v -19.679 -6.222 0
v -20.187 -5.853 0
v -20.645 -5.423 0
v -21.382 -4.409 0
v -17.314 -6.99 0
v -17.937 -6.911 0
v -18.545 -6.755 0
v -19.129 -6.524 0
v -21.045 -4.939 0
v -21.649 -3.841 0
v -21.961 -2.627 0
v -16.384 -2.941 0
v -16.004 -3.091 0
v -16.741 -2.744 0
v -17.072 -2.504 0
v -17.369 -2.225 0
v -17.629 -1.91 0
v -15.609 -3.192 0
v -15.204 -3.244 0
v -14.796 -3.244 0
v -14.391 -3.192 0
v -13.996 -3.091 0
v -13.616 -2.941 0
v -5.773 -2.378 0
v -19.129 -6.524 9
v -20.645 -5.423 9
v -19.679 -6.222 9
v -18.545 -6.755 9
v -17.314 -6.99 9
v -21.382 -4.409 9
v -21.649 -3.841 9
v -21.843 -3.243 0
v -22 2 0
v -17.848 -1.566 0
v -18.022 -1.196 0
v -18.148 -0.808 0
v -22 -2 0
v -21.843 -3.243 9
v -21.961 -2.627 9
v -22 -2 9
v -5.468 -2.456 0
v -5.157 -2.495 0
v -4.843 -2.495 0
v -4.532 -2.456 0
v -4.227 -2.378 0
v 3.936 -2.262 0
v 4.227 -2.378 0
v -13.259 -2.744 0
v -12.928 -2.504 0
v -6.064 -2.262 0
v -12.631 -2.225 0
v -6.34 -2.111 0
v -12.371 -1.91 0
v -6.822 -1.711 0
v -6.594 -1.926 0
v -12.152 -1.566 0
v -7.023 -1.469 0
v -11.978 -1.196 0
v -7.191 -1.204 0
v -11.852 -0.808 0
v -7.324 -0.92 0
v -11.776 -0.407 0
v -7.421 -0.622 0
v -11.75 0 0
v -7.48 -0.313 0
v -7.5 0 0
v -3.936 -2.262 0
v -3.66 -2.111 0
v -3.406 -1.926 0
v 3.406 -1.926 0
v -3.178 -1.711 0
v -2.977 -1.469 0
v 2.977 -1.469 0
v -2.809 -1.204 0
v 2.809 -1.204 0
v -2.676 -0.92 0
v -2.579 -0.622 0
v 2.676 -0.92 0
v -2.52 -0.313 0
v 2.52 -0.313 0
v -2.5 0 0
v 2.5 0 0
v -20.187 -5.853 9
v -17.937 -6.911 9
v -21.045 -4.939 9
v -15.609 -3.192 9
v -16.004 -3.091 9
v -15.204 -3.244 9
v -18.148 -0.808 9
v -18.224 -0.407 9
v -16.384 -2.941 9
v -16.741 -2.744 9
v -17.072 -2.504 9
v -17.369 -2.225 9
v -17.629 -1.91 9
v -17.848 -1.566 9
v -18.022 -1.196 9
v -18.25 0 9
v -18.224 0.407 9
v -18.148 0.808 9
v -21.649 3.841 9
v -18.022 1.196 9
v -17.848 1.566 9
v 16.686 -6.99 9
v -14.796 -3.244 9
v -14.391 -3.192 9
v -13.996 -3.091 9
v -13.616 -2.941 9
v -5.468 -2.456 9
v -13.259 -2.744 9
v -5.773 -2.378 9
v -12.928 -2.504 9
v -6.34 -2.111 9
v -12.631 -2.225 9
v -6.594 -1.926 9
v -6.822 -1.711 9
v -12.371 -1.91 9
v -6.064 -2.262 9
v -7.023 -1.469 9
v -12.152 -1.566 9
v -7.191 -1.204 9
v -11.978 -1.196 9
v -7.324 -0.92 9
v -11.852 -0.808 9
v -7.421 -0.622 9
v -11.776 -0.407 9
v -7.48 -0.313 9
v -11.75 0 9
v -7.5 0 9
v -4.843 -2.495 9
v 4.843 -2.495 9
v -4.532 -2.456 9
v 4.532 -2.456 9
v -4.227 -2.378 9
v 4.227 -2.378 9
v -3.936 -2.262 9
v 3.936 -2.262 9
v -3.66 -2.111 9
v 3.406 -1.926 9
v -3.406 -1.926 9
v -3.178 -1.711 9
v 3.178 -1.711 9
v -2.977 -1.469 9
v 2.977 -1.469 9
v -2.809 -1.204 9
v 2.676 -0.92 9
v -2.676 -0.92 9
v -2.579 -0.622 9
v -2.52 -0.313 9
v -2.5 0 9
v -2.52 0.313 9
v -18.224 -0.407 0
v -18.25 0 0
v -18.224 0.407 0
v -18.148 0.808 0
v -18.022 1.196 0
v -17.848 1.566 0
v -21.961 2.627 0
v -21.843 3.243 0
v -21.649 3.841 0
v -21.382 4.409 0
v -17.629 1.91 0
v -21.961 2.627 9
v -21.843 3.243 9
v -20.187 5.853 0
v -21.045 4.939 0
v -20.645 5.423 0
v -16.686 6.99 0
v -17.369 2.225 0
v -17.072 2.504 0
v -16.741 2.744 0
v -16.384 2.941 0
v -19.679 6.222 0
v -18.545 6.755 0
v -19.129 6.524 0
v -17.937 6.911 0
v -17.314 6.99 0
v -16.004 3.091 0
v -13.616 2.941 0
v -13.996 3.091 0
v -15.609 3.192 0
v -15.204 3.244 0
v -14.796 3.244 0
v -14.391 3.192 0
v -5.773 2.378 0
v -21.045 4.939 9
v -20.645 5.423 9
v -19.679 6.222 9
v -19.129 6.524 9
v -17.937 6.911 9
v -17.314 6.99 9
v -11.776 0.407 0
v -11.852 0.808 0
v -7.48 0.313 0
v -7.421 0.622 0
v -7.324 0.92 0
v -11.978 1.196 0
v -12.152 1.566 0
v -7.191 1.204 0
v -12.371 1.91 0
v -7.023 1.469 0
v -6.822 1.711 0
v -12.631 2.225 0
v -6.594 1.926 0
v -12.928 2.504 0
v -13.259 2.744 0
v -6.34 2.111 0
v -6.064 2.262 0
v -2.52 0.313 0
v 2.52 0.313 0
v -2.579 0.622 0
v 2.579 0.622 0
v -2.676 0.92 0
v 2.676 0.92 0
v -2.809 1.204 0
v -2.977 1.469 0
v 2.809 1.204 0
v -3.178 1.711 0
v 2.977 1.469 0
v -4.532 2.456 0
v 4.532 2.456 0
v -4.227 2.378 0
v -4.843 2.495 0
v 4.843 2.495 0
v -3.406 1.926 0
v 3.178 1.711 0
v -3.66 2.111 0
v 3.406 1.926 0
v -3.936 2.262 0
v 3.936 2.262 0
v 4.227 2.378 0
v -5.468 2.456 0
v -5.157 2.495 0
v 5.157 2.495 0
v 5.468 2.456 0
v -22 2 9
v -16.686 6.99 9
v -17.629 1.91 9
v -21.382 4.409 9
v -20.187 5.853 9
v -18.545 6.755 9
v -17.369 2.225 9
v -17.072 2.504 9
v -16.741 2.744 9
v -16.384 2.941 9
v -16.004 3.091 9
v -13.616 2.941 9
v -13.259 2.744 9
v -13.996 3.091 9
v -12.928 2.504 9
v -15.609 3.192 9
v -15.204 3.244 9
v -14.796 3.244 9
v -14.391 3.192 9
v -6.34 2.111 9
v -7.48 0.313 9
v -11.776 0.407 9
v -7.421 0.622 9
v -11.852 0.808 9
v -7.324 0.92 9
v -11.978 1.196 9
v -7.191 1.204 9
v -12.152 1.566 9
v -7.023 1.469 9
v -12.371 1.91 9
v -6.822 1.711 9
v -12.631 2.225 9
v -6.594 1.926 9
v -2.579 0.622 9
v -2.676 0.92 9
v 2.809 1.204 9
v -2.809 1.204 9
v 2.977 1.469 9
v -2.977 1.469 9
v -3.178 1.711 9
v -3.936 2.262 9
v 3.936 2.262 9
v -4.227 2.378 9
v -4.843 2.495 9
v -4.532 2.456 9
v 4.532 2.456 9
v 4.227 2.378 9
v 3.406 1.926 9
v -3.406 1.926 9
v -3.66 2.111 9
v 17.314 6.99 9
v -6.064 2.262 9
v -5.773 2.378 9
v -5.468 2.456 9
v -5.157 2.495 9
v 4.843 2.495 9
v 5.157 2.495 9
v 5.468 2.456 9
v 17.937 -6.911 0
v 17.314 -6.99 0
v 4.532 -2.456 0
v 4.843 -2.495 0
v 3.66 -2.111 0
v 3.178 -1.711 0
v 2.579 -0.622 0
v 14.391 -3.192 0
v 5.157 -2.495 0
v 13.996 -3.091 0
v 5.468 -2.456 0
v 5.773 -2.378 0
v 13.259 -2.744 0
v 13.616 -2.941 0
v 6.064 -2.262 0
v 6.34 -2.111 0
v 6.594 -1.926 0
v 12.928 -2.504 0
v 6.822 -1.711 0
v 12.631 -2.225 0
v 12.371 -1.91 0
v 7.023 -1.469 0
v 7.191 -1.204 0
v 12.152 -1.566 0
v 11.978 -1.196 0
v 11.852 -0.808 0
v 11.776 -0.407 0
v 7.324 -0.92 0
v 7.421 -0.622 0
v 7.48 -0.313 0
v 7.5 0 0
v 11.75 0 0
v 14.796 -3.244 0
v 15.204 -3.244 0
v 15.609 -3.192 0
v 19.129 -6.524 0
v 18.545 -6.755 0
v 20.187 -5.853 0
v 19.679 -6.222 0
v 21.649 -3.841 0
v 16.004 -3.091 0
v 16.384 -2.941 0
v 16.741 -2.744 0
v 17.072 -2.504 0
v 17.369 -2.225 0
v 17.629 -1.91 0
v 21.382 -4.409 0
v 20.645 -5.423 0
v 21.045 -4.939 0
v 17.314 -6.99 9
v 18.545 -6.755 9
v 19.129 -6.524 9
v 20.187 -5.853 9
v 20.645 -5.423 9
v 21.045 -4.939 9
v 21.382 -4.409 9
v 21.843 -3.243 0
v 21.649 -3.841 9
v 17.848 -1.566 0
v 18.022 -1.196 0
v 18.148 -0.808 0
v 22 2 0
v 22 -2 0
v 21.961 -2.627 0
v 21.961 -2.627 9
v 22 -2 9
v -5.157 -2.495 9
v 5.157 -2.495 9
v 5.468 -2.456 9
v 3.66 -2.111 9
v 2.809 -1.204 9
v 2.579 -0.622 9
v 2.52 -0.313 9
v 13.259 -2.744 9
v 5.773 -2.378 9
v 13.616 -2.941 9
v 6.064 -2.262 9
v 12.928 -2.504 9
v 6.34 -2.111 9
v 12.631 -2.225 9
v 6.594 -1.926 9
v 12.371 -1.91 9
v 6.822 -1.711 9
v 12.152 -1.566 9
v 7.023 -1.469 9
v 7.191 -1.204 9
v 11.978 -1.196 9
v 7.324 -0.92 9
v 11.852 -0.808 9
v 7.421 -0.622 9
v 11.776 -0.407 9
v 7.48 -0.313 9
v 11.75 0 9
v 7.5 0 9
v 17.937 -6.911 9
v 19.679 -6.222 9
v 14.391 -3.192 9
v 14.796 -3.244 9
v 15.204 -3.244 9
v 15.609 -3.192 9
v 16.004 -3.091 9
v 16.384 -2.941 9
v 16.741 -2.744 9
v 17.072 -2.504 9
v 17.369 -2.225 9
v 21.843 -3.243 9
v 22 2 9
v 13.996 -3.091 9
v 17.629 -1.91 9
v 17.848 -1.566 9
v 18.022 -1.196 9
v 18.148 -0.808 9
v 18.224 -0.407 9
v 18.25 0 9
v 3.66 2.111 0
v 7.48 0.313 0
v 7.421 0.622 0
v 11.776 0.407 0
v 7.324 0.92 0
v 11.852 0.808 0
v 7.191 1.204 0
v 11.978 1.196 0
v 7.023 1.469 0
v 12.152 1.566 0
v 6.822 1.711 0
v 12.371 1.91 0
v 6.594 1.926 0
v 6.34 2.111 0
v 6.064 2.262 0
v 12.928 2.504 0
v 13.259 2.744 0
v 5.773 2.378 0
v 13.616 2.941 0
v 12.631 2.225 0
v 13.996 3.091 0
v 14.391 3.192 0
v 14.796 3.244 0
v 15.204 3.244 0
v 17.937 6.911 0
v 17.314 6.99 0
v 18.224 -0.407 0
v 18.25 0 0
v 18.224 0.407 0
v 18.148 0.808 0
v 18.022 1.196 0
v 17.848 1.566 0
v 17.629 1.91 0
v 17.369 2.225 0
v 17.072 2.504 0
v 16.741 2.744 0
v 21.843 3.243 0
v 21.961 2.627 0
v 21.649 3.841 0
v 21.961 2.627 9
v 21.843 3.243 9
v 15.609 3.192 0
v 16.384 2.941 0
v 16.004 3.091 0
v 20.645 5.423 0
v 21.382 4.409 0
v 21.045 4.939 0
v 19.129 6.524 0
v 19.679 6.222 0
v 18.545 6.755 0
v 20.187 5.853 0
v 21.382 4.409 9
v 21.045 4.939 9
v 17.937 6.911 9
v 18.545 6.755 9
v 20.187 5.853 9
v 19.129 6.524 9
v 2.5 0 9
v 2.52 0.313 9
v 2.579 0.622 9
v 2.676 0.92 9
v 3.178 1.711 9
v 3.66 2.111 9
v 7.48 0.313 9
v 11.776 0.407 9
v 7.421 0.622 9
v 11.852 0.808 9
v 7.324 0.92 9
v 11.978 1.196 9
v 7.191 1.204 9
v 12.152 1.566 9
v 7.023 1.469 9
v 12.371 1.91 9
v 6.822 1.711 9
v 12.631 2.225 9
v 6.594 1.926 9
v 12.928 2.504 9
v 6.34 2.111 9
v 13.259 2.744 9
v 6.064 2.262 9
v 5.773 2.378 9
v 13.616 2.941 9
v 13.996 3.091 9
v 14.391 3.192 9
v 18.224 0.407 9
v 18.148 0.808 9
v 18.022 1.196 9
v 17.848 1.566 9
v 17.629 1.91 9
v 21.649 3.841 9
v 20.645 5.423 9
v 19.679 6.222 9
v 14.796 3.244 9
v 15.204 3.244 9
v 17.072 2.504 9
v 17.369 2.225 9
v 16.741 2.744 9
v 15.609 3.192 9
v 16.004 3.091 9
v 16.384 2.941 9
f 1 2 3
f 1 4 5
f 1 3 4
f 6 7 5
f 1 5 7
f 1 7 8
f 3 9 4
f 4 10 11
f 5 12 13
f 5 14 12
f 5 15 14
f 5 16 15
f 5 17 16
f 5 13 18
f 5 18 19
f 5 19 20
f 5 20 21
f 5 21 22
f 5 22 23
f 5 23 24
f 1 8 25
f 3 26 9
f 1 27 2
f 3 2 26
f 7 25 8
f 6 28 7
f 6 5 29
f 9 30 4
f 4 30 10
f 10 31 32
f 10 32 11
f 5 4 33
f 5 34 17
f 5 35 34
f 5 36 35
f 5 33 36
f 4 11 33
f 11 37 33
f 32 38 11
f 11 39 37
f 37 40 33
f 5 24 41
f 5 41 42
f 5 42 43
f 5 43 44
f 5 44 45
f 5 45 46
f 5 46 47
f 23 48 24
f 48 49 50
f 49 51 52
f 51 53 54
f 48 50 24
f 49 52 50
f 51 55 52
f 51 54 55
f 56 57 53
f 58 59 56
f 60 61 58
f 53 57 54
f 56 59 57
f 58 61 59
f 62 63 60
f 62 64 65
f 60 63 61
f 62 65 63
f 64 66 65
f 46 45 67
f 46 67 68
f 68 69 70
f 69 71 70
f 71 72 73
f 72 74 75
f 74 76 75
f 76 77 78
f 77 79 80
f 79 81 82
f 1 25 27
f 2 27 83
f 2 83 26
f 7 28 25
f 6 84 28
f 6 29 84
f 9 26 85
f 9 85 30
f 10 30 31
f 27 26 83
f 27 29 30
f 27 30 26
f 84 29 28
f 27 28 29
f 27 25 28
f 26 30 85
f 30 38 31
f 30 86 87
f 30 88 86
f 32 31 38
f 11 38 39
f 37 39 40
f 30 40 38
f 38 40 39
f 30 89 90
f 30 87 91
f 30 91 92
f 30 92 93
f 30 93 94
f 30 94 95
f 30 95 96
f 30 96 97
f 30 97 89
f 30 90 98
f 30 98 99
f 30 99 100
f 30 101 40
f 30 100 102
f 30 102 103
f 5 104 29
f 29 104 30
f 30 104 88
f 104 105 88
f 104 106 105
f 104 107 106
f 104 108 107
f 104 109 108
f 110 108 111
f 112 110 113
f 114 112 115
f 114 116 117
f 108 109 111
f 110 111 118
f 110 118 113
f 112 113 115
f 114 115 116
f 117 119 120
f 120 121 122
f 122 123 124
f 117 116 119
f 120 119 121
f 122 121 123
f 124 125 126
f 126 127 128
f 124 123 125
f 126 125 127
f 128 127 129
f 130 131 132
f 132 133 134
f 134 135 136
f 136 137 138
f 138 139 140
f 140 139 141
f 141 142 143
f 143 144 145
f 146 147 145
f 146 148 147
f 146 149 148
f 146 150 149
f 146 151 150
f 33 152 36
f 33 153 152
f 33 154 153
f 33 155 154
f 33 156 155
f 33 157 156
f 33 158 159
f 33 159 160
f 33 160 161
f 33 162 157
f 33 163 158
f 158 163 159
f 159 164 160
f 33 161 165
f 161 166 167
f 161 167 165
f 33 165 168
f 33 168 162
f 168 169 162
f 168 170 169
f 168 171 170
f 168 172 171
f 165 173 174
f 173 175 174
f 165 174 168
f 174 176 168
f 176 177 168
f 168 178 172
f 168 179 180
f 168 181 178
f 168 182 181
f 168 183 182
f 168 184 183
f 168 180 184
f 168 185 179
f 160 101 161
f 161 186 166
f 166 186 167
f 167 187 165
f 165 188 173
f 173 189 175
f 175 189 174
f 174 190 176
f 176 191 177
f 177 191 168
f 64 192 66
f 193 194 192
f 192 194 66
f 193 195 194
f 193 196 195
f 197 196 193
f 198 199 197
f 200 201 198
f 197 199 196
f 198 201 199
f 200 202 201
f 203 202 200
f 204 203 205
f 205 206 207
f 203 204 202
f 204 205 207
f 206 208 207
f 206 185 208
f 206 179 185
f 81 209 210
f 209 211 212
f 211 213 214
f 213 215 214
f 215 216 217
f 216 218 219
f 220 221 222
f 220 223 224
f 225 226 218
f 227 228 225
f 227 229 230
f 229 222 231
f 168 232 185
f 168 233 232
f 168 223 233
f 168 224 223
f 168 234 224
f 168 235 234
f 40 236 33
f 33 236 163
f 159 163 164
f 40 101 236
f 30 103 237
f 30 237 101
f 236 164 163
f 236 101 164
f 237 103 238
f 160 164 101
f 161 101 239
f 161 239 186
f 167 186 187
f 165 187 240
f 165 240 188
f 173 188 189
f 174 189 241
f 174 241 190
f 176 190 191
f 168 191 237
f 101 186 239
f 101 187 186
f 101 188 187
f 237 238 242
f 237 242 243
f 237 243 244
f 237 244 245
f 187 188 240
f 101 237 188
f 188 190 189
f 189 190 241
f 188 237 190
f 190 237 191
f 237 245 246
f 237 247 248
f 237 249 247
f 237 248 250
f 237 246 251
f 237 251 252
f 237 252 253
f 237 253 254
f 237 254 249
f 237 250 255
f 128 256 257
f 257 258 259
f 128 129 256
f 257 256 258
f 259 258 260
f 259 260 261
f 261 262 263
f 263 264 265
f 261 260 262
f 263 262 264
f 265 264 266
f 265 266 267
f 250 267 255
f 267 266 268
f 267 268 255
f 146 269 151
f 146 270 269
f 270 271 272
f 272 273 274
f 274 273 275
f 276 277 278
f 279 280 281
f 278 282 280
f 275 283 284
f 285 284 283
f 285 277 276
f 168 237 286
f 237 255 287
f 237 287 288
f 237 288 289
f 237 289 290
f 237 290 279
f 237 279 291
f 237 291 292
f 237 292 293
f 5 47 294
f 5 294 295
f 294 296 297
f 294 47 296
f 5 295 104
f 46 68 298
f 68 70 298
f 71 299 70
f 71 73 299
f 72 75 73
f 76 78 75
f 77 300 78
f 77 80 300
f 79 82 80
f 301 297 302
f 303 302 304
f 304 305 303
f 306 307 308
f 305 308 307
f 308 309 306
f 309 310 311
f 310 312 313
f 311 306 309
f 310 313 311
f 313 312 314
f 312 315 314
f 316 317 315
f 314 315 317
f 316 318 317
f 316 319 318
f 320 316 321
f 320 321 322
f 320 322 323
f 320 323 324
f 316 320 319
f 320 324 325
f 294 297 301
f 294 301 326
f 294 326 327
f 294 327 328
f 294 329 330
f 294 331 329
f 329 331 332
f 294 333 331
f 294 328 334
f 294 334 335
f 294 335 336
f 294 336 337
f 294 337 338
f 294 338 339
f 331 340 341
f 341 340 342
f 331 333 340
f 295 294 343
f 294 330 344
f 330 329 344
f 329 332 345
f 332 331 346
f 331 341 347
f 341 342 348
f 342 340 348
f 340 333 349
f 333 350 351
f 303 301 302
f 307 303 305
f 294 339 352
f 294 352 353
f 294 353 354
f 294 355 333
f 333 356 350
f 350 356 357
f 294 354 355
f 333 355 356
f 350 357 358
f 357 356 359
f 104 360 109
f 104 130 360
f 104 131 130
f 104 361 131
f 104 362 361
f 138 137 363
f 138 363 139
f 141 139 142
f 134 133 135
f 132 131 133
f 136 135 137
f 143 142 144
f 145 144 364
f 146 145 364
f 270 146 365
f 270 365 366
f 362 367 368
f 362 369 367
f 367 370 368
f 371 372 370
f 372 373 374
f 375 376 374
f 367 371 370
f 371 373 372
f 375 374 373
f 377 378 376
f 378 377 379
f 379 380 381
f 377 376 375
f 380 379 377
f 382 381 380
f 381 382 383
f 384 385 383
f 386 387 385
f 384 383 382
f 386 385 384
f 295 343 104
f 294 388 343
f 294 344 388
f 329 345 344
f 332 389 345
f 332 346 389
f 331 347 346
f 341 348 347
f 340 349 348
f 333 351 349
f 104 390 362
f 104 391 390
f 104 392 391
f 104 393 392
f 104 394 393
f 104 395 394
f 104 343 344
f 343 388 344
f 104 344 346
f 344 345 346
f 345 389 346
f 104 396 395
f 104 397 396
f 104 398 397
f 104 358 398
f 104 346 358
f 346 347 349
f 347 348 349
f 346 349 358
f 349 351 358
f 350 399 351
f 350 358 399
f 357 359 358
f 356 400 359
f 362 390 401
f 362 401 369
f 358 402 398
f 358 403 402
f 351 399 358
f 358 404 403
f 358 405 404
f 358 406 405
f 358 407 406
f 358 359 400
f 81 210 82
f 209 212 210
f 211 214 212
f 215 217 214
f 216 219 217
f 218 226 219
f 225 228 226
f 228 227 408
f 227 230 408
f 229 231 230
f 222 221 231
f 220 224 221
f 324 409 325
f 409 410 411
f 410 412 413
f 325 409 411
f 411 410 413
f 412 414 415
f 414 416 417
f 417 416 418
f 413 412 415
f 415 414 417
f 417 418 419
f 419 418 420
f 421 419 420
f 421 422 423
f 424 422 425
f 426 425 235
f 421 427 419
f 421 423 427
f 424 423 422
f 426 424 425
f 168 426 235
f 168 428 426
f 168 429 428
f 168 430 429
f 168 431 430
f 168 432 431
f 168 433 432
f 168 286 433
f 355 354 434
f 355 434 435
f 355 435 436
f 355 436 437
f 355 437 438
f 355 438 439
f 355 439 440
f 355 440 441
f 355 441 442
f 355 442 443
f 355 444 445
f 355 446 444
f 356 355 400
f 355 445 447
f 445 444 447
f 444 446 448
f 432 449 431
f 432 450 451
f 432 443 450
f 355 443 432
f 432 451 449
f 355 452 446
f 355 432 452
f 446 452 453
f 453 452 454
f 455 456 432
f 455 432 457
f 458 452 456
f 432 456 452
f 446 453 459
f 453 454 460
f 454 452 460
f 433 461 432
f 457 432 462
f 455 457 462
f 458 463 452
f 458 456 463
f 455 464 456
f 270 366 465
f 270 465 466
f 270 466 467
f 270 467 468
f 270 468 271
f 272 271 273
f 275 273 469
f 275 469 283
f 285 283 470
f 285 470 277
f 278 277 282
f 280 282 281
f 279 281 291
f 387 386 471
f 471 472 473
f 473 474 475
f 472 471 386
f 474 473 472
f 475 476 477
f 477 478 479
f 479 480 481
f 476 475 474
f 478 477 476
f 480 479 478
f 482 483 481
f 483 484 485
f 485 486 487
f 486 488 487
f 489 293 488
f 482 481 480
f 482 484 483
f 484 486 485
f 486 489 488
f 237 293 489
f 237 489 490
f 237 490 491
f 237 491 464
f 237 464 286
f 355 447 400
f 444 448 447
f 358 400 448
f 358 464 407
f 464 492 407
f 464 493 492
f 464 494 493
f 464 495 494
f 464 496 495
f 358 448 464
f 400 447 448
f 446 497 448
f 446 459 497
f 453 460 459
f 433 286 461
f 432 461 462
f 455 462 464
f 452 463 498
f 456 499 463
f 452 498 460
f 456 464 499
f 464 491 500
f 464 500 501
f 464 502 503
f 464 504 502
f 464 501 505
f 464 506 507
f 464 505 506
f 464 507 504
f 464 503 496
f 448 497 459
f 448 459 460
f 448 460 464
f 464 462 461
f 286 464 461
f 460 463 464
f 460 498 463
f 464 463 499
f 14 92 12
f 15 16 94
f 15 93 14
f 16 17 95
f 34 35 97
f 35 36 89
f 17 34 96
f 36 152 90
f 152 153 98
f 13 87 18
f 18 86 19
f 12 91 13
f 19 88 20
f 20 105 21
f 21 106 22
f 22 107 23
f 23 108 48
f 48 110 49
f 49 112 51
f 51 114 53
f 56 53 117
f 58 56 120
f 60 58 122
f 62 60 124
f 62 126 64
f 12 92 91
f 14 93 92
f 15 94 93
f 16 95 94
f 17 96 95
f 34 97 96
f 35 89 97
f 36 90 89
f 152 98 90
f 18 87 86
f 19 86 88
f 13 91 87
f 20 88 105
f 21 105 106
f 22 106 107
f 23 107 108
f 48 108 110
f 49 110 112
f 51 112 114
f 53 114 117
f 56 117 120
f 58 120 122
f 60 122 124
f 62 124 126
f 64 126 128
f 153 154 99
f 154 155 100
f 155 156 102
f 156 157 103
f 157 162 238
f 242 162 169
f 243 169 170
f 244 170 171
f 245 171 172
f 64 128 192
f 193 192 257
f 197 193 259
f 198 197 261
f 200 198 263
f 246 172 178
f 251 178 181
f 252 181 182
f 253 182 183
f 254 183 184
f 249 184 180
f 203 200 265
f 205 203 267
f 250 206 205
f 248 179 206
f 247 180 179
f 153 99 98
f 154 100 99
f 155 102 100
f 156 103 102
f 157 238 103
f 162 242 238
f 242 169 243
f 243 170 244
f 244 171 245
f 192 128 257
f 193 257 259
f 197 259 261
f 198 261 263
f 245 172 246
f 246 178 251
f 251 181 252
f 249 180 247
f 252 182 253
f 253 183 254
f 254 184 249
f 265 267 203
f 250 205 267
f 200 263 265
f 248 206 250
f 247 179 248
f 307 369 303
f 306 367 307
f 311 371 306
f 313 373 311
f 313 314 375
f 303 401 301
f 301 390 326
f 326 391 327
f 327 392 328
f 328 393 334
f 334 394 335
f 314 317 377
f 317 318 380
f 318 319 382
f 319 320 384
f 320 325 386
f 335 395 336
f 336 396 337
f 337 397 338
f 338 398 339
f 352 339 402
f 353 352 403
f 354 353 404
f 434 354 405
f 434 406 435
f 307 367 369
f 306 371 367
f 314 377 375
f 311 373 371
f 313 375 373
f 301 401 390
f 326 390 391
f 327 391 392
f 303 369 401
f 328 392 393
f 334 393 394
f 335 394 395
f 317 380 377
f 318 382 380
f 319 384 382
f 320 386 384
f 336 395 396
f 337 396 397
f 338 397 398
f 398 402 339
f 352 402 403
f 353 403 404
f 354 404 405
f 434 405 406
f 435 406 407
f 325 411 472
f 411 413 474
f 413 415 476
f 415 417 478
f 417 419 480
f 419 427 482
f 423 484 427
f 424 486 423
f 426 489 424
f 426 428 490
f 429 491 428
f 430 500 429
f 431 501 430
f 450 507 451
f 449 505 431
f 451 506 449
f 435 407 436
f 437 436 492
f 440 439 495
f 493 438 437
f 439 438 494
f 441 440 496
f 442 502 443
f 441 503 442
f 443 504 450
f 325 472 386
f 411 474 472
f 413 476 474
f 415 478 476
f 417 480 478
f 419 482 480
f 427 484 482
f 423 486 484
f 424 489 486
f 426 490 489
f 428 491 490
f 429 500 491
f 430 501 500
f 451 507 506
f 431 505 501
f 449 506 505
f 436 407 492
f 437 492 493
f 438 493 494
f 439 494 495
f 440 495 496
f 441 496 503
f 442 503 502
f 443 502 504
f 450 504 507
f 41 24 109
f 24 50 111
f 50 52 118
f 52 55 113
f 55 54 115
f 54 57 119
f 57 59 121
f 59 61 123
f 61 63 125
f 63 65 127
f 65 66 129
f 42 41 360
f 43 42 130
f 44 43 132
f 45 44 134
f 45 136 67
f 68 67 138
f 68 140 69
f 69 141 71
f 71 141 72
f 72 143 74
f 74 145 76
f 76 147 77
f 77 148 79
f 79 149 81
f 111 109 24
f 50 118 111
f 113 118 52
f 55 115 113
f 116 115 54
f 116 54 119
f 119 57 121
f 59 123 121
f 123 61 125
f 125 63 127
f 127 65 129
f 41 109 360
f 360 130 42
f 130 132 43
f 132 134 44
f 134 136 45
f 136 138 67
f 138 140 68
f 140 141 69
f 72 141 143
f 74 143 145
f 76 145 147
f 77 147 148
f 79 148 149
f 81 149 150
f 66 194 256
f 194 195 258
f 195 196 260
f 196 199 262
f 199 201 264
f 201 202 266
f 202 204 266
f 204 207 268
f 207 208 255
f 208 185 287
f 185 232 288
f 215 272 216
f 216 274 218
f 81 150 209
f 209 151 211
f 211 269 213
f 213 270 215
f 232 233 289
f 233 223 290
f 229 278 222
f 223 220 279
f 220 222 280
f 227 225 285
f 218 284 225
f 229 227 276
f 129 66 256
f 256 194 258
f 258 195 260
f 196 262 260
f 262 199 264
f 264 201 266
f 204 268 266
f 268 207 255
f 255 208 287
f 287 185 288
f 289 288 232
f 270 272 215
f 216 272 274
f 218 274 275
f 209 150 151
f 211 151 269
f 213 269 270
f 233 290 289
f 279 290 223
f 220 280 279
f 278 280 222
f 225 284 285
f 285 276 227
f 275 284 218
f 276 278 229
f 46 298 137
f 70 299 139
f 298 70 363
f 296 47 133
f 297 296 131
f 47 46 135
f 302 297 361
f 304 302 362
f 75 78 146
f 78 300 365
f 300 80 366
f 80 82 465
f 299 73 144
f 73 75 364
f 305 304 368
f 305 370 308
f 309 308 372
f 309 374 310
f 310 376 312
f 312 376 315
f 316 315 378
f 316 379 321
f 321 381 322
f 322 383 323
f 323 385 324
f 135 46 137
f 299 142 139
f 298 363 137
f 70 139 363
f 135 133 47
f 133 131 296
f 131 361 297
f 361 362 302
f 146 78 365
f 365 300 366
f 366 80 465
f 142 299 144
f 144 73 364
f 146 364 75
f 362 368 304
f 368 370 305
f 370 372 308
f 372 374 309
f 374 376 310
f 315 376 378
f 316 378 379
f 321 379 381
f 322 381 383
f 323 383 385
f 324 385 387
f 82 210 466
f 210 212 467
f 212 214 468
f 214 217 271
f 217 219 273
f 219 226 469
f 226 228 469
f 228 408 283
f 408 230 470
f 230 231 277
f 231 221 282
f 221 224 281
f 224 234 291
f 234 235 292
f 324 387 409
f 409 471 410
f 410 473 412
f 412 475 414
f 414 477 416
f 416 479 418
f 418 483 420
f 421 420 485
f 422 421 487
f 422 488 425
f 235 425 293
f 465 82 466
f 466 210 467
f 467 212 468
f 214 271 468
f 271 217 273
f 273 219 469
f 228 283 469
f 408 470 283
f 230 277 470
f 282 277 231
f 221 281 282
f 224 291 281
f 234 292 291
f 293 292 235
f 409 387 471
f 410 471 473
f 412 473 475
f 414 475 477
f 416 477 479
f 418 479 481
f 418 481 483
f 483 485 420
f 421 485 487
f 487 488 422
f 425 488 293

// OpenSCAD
$fn = 50;

difference() {
	union() {
		hull() {
			translate(v = [-17.0, 2.0, 0]) {
				cylinder(h = 9, r = 5);
			}
			translate(v = [17.0, 2.0, 0]) {
				cylinder(h = 9, r = 5);
			}
			translate(v = [-17.0, -2.0, 0]) {
				cylinder(h = 9, r = 5);
			}
			translate(v = [17.0, -2.0, 0]) {
				cylinder(h = 9, r = 5);
			}
		}
	}
	union() {
		translate(v = [-15.0, 0.0, -100.0]) {
			cylinder(h = 200, r = 3.25);
		}
		translate(v = [15.0, 0.0, -100.0]) {
			cylinder(h = 200, r = 3.25);
		}
		translate(v = [-15.0, 0.0, -100.0]) {
			cylinder(h = 200, r = 1.8);
		}
		translate(v = [15.0, 0.0, -100.0]) {
			cylinder(h = 200, r = 1.8);
		}
		translate(v = [-15.0, 0, 0.0]) {
			cylinder(h = 9, r = 2.5);
		}
		translate(v = [-5.0, 0, 0.0]) {
			cylinder(h = 9, r = 2.5);
		}
		translate(v = [5.0, 0, 0.0]) {
			cylinder(h = 9, r = 2.5);
		}
		translate(v = [15.0, 0, 0.0]) {
			cylinder(h = 9, r = 2.5);
		}
	}
}
